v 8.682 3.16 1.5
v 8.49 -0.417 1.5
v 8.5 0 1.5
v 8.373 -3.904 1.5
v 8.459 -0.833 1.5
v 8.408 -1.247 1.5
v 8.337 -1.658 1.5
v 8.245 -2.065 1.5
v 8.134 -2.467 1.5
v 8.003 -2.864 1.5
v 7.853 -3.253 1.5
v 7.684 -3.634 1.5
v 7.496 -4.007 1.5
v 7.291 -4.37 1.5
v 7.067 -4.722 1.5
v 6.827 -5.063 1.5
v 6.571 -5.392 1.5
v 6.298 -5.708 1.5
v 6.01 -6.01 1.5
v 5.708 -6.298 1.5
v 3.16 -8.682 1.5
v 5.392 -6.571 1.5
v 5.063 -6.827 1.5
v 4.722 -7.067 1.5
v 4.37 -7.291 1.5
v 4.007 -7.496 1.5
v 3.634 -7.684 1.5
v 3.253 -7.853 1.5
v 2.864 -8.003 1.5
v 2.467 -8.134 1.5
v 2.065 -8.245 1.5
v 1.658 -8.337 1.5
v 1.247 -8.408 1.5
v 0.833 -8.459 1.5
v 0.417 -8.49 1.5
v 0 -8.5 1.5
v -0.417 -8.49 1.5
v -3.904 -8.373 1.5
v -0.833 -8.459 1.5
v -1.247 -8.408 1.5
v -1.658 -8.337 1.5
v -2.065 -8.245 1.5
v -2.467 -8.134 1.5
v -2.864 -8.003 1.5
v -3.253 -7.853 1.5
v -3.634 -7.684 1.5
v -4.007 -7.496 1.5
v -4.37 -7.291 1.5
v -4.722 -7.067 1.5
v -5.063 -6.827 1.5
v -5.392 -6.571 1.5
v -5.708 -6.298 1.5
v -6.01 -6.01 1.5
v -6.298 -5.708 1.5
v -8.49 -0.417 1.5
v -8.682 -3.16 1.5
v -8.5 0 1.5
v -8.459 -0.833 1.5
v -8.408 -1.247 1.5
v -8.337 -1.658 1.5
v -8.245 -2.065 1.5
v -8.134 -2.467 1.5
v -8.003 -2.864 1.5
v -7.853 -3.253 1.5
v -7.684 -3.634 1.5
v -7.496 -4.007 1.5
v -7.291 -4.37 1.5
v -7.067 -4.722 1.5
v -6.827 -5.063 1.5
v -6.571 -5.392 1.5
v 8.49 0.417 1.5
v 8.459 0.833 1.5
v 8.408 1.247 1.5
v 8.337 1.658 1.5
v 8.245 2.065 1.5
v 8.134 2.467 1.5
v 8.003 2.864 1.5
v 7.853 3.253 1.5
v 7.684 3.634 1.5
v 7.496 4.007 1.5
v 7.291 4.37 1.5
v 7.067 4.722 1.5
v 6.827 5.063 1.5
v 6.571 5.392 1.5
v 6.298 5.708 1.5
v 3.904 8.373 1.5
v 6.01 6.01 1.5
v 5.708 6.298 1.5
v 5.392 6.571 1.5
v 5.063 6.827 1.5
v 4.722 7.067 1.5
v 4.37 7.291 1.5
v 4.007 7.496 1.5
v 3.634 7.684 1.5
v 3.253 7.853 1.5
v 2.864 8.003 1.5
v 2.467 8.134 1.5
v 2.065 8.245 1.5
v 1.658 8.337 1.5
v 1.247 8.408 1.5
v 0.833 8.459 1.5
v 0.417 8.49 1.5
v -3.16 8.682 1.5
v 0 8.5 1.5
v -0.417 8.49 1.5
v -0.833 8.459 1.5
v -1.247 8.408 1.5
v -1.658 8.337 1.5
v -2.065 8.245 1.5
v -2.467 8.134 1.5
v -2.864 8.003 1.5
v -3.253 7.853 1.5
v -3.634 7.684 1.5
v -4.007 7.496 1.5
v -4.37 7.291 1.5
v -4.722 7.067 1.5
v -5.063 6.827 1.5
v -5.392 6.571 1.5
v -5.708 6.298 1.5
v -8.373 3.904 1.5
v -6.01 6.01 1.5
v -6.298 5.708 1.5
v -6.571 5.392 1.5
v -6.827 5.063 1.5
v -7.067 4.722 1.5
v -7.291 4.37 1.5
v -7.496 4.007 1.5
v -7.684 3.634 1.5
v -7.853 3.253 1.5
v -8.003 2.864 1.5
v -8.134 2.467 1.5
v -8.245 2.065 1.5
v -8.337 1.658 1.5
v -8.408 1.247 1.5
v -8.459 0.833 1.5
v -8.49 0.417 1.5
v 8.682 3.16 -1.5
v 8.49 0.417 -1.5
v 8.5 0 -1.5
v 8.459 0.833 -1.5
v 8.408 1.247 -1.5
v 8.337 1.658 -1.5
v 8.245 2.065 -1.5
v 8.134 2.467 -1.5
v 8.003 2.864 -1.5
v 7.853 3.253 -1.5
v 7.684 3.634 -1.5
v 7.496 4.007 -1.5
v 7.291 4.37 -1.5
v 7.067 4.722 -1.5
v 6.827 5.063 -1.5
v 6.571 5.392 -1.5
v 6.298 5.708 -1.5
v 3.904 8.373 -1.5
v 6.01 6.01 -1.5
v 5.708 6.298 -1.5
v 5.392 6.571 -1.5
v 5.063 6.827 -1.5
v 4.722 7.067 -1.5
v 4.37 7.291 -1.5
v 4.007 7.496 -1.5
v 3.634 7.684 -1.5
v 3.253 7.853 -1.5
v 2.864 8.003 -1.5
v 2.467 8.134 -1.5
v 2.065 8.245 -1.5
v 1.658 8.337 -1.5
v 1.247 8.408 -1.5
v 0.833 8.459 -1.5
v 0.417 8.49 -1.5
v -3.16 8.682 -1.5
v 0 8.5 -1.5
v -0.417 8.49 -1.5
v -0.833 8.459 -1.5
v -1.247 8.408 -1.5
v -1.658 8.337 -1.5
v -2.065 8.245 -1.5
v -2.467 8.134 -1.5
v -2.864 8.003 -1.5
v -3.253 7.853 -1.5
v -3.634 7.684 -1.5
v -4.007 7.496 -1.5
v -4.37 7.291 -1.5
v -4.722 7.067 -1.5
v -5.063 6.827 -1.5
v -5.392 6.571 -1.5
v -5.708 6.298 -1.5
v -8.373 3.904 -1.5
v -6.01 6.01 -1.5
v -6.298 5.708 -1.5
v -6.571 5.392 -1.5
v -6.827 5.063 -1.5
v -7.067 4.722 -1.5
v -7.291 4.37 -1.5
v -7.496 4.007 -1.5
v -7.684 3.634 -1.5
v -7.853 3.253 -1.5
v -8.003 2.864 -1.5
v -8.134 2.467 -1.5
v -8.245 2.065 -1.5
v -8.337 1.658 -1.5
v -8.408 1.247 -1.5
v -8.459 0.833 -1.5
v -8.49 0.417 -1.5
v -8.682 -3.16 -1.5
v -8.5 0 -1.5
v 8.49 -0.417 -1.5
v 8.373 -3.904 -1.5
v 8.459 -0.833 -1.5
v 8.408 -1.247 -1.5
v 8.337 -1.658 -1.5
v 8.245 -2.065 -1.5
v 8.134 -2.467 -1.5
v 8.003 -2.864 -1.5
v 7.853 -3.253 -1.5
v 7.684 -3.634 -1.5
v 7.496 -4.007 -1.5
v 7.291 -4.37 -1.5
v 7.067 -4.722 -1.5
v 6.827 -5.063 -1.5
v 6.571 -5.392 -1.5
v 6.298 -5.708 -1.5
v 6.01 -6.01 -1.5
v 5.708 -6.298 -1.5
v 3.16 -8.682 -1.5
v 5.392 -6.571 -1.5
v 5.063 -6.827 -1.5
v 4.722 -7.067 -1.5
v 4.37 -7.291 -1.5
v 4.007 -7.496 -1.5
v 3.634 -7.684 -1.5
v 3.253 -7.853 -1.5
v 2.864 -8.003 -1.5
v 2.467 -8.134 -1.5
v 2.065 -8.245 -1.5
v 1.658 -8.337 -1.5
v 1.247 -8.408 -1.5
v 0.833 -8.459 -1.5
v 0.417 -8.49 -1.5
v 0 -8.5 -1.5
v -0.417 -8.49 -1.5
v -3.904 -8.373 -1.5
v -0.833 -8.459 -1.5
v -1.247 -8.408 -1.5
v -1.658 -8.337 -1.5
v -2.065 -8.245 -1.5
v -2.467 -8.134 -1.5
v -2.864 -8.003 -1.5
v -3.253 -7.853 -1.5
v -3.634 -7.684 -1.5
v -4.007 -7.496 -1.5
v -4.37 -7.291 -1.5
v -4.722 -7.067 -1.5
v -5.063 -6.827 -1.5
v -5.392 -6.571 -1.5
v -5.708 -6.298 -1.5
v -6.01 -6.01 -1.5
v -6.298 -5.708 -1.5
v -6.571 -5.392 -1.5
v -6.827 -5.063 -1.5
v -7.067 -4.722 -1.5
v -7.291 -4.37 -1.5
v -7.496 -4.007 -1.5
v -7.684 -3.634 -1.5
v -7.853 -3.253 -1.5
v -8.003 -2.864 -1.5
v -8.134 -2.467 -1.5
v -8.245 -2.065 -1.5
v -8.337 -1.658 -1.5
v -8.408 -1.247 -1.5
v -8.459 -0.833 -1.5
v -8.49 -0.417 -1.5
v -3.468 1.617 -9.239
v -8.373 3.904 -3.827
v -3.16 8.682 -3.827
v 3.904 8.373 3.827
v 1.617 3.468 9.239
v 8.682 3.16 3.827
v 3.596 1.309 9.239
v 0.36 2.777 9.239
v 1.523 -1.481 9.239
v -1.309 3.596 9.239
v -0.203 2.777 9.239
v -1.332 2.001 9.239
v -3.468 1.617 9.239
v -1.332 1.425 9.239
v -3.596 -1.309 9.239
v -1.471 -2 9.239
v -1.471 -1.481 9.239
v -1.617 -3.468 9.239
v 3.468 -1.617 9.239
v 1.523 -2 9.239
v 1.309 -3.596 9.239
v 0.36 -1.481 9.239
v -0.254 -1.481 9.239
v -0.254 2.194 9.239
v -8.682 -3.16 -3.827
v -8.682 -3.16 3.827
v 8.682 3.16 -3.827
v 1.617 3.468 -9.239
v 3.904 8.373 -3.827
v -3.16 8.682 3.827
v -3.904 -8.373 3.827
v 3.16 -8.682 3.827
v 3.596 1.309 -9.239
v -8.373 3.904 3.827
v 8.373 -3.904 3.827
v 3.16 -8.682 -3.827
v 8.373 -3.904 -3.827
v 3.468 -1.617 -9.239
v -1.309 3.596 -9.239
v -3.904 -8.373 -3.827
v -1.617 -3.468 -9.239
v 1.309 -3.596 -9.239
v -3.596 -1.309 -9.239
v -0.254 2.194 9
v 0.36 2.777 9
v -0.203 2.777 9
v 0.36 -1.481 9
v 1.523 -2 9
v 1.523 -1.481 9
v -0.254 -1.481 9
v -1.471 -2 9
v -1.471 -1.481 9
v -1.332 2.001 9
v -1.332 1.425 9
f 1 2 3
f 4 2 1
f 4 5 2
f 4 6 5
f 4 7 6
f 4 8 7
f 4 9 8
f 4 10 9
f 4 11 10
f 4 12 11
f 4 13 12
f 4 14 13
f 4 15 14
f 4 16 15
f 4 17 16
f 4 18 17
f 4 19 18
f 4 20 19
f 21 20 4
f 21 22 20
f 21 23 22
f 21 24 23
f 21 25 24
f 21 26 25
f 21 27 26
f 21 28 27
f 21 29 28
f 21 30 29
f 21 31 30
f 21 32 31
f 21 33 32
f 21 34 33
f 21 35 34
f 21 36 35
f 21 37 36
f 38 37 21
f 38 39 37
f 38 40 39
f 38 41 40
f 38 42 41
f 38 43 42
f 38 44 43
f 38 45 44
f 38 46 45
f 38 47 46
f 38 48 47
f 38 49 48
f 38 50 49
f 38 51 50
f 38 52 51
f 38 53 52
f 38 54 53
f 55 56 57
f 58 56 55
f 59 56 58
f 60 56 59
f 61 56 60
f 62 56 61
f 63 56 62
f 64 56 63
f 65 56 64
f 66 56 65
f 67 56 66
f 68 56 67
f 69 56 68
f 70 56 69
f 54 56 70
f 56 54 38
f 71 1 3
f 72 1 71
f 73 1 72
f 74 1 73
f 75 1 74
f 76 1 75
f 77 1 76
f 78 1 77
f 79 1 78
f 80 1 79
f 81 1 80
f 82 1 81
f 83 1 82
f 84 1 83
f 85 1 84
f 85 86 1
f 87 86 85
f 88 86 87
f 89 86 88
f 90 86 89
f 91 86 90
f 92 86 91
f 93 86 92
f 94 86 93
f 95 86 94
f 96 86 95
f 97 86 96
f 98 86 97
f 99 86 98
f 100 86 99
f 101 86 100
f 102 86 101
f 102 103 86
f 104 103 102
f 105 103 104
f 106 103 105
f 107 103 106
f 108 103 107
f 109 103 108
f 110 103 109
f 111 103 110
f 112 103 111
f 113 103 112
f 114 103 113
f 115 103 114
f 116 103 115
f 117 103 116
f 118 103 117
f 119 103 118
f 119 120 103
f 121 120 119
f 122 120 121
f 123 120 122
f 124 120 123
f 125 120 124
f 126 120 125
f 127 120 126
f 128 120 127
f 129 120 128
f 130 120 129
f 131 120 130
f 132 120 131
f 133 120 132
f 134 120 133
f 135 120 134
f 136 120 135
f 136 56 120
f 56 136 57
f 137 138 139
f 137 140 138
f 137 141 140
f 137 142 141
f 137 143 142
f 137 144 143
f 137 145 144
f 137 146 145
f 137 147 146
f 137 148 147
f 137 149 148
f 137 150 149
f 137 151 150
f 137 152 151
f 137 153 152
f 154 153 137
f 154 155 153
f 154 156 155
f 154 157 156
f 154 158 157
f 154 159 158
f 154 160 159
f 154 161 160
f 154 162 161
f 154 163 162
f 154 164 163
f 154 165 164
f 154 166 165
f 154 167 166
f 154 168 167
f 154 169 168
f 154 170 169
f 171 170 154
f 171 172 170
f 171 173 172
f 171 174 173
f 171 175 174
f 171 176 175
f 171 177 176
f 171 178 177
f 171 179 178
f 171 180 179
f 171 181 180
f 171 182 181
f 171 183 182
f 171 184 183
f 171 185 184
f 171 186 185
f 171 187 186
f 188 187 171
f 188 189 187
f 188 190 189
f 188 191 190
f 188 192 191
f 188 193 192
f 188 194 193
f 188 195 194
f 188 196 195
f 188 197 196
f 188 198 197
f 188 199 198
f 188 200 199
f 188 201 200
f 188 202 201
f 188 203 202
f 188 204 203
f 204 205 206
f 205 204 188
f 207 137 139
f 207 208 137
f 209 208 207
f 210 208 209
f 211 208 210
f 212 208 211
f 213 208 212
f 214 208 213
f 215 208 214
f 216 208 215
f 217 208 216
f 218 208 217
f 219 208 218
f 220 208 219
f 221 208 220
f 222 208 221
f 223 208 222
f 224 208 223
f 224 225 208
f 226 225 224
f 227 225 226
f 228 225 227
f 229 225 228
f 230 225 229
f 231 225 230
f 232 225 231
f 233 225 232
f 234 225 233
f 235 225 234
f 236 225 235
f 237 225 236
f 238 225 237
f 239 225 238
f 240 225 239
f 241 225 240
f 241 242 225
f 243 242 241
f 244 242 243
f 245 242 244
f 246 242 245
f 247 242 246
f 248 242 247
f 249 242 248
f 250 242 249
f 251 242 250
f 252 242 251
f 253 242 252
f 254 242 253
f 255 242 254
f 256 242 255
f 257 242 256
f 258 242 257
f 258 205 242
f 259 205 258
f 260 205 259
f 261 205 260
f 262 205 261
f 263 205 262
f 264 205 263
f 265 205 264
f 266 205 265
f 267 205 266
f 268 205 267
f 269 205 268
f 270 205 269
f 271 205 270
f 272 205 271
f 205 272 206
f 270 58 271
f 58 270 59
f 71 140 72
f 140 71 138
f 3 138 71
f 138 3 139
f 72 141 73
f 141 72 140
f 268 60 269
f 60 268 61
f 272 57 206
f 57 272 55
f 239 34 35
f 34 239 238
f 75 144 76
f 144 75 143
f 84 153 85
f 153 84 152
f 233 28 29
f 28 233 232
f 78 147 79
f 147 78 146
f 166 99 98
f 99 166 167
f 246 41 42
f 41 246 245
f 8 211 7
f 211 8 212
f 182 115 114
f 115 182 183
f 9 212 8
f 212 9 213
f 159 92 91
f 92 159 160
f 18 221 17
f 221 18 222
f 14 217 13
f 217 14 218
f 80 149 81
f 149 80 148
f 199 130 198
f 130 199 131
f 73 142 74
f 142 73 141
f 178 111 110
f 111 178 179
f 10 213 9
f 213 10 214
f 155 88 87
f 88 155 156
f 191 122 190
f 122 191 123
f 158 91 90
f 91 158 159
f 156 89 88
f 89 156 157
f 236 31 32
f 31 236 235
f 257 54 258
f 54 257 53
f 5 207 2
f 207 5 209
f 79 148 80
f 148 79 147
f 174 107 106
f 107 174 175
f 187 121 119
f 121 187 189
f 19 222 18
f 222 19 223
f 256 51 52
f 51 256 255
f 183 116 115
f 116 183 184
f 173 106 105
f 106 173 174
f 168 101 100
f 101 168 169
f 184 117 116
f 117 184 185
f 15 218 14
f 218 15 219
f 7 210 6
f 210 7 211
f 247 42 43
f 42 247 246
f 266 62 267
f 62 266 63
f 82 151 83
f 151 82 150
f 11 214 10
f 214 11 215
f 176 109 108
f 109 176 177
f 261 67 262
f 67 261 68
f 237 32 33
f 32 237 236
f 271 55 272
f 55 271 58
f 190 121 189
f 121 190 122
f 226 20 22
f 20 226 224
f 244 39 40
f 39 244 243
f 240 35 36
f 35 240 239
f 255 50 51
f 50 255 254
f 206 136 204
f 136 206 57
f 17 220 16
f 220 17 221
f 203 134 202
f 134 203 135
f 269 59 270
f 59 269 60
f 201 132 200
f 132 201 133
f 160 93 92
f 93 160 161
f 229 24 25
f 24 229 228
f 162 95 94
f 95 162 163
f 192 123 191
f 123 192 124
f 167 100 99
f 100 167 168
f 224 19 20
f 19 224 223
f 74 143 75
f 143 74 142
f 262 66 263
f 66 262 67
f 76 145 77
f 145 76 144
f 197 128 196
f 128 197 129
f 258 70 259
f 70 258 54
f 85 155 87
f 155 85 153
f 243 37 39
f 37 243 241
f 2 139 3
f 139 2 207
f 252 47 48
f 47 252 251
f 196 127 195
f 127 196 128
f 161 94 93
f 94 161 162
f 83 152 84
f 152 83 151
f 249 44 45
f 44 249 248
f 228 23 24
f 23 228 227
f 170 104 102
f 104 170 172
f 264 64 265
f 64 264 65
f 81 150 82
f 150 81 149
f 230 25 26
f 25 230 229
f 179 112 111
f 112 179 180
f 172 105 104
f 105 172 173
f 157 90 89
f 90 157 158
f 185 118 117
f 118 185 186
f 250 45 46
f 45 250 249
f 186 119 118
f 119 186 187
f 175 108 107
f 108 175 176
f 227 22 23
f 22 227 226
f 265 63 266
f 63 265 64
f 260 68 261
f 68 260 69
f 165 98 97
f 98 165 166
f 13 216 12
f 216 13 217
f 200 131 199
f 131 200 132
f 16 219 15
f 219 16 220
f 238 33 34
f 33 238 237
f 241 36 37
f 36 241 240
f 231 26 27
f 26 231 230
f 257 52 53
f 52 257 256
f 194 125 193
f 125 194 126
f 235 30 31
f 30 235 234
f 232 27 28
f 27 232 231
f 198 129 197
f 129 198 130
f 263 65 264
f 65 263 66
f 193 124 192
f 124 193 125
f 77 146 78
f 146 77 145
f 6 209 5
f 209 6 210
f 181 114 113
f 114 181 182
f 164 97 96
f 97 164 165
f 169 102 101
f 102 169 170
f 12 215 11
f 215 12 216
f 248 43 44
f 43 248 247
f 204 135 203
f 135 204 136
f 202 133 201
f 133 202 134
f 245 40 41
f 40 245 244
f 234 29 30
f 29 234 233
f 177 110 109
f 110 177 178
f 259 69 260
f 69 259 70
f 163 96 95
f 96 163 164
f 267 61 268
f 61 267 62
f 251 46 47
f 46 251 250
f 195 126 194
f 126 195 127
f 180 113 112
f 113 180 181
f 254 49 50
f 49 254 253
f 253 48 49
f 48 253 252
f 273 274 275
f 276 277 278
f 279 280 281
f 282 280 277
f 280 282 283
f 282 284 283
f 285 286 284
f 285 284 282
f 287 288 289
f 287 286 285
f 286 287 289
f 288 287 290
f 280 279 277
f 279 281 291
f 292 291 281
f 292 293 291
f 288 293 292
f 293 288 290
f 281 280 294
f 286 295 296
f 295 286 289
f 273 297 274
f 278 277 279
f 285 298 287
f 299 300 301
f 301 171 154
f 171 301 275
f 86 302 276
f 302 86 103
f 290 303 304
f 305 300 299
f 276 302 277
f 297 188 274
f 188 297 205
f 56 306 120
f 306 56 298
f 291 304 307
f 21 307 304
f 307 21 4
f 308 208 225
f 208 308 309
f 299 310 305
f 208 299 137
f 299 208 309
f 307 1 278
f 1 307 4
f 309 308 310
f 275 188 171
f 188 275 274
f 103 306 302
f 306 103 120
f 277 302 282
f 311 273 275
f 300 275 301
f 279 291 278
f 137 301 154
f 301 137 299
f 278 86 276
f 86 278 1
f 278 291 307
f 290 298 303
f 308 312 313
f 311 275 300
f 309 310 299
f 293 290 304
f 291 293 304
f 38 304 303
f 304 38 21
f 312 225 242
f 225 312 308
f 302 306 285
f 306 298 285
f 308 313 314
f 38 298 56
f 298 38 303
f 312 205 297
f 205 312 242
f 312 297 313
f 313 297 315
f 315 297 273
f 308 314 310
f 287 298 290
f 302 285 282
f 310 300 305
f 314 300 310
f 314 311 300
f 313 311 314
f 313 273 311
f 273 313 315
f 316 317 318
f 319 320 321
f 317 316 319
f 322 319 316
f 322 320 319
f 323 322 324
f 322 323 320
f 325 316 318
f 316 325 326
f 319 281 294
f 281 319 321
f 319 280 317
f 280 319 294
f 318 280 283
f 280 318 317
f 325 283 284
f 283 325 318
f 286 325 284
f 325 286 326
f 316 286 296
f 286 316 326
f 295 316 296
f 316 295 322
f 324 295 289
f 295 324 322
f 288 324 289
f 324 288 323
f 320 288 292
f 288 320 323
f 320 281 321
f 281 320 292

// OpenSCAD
// file: ../../../scad_modules/general_use_modules.scad
module hollowCylinder(d=5, h=10, wallWidth=1, $fn=128, center=true)
{
    difference() {
		cylinder(h, d=d, center=center);
		cylinder(h + 0.1, d=d-(wallWidth*2),  center=center);
	}
}

// CCL Modules

// Title: Wedge Triangle Module
// Author: Carlo Wood
// Date: 19/8/2016
// License: Creative Commons - Share Alike - Attribution

// Usage: Include in your other .scad projects and call wedge with arguments for the height
//        of the wedge, two of the legs of the wedge, and the angle between those legs.
//        The resulting wedge will be placed with the point at the origin, `leg1' along the x-axis
//        and extending `height' into the z axis, with the angle starting at the x axis and
//        extending counter-clockwise as per the right-hand rule towards `leg2`.


//           Y-axis
//           |
//           |  /\
//      leg2 --/  \
//           |/    \
//           /)_____\_______X-axis
//     angle--'  \__ leg1
//
module wedge(angle, leg1, leg2, height = 0.5)
{
  // Store the length of all three sides in an array.
  side = [sqrt(leg1 * leg1 + leg2 * leg2 - 2 * leg1 * leg2 * cos(angle)),	// Law of Cosines.
          leg1,
          leg2];

  i = (leg2 > leg1) ? 2 : 1;
  longest_leg = side[i];
  longest_side = (side[0] > longest_leg) ? side[0] : longest_leg;

  // The corner opposite of the shortest leg must be less than 90 degrees.
  sa = asin(side[3 - i] * sin(angle) / side[0]);		// Law of Sines.
  sb = 180 - angle - sa;					// Sum of all angles is 180 degrees.

  // Store the size of all three angles in an array.
  a = [angle, (i == 1) ? sb : sa, (i == 1) ? sa : sb];

  // Is there anything to draw at all?
  if (angle > 0 && angle < 180)
  {
    intersection()
    {
      if (angle <= 90)
	intersection()
	{
	  cube([longest_leg, longest_leg, height]);
	  rotate([0, 0, angle - 90])
	    cube([longest_leg, longest_leg, height]);
	}
      else
	union()
	{
	  cube([longest_leg, longest_leg, height]);
	  rotate([0, 0, angle - 90])
	    cube([longest_leg, longest_leg, height]);
	}
      if (a[2] < 90)
      {
	translate([leg1, 0, 0])
	  rotate([0, 0, 90 - a[2]])
	    translate([-longest_side, 0, 0])
	      cube([longest_side, longest_side, height]);
      }
      else
      {
        rotate([0, 0, angle])
	  translate([leg2, 0, 0])
	    rotate([0, 0, a[1]])
	      translate([-longest_side, 0, 0])
	        cube([longest_side, longest_side, height]);
      }
    }
  }
}

// Example: wedge(145, 10, 20, 5); // Would create a triangle with thickness 5 where two legs,
                                   // being 10 and 20 respectively, making an angle of 145 degrees,
				   // the point on the z-axis and leg1 along the x-axis.
// main file
use <../../../scad_modules/general_use_modules.scad>

nodeObjective();

module nodeObjective(number="1") {
    difference() {
        union() {
            rotate([0,0,20])
            sphere(d=20,$fn=8);
       
        }
        translate([-2,-2,9])
        linear_extrude(2)
        text(number,size=5);
        translate([0,0,0])
        hollowCylinder(d=20, h=3, wallWidth=1.5, $fn=128, center=true);
    }
}
